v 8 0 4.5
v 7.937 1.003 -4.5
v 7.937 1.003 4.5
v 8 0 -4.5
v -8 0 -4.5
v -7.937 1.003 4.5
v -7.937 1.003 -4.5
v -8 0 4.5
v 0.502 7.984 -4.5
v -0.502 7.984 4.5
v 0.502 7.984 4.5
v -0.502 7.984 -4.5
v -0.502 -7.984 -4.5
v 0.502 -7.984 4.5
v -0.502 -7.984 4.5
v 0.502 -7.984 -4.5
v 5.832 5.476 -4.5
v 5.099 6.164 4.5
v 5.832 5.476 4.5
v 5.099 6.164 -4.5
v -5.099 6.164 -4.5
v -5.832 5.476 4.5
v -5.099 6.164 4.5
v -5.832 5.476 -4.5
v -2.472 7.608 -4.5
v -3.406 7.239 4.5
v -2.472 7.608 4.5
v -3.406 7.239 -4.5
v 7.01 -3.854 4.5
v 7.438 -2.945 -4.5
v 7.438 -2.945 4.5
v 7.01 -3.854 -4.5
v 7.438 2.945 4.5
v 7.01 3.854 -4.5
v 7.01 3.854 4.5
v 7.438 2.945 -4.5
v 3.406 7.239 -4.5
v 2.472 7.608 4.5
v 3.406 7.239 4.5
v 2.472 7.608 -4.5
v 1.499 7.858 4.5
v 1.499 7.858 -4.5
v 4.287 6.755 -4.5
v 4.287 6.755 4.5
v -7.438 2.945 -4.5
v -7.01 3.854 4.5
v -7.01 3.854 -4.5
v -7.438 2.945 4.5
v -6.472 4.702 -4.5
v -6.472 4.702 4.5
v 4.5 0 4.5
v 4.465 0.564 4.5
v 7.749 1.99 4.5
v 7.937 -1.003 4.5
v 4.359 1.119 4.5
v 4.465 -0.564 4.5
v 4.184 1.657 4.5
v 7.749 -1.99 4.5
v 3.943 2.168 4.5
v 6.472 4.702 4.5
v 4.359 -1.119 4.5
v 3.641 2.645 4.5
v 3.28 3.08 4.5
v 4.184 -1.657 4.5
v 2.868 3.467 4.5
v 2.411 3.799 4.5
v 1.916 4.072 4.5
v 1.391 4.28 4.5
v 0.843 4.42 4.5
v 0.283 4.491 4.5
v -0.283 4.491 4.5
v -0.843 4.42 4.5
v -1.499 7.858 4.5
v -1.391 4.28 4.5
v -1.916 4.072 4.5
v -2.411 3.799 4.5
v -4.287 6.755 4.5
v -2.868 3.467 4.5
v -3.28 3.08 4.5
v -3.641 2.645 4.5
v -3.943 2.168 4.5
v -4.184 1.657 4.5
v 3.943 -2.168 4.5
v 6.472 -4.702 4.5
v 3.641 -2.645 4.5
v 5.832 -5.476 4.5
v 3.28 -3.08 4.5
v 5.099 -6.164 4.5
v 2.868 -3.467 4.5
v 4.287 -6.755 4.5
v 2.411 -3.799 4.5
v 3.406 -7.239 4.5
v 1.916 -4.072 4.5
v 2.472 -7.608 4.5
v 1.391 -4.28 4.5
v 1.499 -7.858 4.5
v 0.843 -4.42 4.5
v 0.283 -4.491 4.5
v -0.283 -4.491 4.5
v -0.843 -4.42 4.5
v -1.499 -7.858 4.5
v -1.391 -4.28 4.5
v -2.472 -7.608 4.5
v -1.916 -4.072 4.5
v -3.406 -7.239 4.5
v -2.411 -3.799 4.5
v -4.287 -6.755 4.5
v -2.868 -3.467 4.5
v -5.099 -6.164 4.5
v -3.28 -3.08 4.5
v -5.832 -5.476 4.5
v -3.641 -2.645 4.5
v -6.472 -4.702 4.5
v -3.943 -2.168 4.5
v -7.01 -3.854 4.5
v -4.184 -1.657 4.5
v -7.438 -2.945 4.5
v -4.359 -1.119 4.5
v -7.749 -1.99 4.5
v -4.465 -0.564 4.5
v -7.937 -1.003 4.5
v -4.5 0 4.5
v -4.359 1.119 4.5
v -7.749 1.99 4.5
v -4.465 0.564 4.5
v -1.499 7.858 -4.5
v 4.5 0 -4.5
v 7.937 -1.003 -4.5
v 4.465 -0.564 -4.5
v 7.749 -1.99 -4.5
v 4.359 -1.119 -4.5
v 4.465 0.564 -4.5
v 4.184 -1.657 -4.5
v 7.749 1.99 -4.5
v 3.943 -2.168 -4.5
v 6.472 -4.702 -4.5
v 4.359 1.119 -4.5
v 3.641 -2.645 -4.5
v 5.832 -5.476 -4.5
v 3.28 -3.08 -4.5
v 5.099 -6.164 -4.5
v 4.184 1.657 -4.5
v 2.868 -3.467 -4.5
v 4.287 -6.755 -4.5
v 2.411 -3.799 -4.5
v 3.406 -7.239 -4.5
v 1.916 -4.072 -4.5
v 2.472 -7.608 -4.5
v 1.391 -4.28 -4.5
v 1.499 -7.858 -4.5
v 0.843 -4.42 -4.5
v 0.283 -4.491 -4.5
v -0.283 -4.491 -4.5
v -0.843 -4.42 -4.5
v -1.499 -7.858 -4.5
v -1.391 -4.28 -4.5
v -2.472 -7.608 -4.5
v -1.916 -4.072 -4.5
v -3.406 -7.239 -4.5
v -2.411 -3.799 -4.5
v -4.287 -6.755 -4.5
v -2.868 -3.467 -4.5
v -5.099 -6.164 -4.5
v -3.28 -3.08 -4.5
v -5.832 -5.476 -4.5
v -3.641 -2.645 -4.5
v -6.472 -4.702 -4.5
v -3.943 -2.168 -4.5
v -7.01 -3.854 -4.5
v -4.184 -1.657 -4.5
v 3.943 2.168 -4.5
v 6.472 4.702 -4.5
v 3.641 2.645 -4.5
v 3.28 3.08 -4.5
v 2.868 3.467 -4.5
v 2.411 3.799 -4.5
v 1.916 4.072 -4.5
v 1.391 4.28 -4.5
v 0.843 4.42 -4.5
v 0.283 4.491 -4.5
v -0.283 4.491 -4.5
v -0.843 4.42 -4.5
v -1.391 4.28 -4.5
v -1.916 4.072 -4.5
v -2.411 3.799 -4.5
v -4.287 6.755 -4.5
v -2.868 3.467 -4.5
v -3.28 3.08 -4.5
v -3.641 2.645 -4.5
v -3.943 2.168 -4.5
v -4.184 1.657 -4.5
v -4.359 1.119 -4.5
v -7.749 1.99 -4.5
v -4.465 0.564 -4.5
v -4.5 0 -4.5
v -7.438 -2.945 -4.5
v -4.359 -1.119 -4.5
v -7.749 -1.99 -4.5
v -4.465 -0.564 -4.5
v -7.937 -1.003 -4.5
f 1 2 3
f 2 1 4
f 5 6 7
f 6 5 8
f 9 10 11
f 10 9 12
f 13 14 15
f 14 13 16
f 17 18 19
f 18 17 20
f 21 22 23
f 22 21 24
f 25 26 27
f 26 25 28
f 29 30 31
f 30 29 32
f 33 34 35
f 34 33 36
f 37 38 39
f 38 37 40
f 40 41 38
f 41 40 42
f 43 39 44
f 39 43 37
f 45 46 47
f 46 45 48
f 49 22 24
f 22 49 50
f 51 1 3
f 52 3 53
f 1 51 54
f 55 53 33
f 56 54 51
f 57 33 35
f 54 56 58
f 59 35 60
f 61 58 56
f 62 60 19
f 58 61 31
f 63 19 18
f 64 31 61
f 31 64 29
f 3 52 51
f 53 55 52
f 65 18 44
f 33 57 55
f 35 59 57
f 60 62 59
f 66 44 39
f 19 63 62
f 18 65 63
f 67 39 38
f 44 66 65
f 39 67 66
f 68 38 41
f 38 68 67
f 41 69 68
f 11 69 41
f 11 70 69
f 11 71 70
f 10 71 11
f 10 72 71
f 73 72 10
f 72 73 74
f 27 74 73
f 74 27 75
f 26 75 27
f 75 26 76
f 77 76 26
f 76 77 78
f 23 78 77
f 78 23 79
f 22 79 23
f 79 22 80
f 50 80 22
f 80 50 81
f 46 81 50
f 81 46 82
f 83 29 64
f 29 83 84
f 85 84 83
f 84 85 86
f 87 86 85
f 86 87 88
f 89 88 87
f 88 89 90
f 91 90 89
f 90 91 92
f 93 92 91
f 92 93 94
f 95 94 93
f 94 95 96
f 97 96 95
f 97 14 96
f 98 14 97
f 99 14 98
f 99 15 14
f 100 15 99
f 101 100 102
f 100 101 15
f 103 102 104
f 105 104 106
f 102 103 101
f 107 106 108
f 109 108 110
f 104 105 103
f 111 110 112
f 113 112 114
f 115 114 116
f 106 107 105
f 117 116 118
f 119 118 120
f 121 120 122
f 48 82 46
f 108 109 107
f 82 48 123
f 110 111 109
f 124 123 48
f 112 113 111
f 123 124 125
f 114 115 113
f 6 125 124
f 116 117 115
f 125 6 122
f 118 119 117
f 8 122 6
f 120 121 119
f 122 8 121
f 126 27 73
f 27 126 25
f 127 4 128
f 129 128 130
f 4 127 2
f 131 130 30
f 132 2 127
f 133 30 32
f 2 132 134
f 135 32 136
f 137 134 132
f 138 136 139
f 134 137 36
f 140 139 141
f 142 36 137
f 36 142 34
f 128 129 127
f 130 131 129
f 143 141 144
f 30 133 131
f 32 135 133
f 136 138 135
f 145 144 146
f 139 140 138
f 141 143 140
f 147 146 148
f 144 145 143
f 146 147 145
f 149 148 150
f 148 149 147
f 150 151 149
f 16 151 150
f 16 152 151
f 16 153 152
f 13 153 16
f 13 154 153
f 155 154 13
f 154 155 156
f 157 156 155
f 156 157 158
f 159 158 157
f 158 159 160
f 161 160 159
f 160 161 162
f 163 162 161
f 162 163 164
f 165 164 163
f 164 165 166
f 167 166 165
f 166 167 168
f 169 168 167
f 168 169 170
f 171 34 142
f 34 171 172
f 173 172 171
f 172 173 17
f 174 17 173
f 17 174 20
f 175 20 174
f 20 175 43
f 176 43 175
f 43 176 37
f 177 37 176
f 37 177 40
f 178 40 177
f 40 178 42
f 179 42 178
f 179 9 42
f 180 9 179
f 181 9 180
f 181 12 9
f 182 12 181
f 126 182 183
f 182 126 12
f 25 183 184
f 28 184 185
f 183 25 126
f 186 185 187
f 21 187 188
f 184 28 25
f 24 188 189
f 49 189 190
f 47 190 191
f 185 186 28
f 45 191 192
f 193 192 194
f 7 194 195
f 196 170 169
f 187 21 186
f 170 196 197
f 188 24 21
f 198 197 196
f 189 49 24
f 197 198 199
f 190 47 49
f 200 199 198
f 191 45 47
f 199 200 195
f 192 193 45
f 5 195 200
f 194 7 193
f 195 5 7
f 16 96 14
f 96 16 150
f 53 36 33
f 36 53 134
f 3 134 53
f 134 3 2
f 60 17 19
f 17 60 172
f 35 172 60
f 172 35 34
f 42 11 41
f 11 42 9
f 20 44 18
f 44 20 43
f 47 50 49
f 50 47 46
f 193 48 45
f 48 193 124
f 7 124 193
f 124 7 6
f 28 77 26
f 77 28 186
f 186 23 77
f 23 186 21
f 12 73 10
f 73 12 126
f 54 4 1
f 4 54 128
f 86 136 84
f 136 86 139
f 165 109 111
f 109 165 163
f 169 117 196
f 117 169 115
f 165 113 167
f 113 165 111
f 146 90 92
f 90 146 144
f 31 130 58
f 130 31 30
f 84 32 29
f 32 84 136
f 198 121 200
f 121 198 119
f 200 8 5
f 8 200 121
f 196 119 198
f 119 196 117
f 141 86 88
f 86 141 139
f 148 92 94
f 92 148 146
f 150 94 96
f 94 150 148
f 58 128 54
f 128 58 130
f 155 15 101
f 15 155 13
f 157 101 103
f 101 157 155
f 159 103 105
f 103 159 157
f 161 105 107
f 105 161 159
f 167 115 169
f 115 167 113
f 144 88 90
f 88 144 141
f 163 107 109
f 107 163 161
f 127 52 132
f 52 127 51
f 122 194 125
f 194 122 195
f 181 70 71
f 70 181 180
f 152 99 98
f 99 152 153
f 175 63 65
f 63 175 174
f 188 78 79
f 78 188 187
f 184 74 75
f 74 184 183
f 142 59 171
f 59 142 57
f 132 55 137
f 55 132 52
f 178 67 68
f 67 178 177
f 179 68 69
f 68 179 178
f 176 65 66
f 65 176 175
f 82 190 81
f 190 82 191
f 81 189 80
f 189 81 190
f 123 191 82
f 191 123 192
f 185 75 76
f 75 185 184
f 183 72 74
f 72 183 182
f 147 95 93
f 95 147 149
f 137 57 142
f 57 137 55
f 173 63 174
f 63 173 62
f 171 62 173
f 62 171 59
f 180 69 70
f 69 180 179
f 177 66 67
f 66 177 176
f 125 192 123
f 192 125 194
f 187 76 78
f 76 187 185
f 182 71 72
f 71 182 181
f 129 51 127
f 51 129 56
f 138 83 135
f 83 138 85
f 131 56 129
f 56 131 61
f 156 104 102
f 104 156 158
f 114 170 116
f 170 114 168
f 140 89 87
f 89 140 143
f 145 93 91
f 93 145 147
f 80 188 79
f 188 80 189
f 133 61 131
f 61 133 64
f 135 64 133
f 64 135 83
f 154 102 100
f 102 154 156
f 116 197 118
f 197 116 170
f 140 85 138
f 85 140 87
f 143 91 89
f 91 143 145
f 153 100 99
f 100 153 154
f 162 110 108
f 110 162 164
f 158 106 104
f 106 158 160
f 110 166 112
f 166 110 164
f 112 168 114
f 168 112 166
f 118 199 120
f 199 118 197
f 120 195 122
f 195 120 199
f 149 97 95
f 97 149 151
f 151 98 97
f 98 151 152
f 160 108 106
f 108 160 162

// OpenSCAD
$fn = 50;


difference() {
	union() {
		translate(v = [0, 0, -4.5000000000]) {
			cylinder(h = 9, r = 8.0000000000);
		}
	}
	union() {
		translate(v = [0, 0, -100.0000000000]) {
			cylinder(h = 200, r = 4.5000000000);
		}
	}
}
